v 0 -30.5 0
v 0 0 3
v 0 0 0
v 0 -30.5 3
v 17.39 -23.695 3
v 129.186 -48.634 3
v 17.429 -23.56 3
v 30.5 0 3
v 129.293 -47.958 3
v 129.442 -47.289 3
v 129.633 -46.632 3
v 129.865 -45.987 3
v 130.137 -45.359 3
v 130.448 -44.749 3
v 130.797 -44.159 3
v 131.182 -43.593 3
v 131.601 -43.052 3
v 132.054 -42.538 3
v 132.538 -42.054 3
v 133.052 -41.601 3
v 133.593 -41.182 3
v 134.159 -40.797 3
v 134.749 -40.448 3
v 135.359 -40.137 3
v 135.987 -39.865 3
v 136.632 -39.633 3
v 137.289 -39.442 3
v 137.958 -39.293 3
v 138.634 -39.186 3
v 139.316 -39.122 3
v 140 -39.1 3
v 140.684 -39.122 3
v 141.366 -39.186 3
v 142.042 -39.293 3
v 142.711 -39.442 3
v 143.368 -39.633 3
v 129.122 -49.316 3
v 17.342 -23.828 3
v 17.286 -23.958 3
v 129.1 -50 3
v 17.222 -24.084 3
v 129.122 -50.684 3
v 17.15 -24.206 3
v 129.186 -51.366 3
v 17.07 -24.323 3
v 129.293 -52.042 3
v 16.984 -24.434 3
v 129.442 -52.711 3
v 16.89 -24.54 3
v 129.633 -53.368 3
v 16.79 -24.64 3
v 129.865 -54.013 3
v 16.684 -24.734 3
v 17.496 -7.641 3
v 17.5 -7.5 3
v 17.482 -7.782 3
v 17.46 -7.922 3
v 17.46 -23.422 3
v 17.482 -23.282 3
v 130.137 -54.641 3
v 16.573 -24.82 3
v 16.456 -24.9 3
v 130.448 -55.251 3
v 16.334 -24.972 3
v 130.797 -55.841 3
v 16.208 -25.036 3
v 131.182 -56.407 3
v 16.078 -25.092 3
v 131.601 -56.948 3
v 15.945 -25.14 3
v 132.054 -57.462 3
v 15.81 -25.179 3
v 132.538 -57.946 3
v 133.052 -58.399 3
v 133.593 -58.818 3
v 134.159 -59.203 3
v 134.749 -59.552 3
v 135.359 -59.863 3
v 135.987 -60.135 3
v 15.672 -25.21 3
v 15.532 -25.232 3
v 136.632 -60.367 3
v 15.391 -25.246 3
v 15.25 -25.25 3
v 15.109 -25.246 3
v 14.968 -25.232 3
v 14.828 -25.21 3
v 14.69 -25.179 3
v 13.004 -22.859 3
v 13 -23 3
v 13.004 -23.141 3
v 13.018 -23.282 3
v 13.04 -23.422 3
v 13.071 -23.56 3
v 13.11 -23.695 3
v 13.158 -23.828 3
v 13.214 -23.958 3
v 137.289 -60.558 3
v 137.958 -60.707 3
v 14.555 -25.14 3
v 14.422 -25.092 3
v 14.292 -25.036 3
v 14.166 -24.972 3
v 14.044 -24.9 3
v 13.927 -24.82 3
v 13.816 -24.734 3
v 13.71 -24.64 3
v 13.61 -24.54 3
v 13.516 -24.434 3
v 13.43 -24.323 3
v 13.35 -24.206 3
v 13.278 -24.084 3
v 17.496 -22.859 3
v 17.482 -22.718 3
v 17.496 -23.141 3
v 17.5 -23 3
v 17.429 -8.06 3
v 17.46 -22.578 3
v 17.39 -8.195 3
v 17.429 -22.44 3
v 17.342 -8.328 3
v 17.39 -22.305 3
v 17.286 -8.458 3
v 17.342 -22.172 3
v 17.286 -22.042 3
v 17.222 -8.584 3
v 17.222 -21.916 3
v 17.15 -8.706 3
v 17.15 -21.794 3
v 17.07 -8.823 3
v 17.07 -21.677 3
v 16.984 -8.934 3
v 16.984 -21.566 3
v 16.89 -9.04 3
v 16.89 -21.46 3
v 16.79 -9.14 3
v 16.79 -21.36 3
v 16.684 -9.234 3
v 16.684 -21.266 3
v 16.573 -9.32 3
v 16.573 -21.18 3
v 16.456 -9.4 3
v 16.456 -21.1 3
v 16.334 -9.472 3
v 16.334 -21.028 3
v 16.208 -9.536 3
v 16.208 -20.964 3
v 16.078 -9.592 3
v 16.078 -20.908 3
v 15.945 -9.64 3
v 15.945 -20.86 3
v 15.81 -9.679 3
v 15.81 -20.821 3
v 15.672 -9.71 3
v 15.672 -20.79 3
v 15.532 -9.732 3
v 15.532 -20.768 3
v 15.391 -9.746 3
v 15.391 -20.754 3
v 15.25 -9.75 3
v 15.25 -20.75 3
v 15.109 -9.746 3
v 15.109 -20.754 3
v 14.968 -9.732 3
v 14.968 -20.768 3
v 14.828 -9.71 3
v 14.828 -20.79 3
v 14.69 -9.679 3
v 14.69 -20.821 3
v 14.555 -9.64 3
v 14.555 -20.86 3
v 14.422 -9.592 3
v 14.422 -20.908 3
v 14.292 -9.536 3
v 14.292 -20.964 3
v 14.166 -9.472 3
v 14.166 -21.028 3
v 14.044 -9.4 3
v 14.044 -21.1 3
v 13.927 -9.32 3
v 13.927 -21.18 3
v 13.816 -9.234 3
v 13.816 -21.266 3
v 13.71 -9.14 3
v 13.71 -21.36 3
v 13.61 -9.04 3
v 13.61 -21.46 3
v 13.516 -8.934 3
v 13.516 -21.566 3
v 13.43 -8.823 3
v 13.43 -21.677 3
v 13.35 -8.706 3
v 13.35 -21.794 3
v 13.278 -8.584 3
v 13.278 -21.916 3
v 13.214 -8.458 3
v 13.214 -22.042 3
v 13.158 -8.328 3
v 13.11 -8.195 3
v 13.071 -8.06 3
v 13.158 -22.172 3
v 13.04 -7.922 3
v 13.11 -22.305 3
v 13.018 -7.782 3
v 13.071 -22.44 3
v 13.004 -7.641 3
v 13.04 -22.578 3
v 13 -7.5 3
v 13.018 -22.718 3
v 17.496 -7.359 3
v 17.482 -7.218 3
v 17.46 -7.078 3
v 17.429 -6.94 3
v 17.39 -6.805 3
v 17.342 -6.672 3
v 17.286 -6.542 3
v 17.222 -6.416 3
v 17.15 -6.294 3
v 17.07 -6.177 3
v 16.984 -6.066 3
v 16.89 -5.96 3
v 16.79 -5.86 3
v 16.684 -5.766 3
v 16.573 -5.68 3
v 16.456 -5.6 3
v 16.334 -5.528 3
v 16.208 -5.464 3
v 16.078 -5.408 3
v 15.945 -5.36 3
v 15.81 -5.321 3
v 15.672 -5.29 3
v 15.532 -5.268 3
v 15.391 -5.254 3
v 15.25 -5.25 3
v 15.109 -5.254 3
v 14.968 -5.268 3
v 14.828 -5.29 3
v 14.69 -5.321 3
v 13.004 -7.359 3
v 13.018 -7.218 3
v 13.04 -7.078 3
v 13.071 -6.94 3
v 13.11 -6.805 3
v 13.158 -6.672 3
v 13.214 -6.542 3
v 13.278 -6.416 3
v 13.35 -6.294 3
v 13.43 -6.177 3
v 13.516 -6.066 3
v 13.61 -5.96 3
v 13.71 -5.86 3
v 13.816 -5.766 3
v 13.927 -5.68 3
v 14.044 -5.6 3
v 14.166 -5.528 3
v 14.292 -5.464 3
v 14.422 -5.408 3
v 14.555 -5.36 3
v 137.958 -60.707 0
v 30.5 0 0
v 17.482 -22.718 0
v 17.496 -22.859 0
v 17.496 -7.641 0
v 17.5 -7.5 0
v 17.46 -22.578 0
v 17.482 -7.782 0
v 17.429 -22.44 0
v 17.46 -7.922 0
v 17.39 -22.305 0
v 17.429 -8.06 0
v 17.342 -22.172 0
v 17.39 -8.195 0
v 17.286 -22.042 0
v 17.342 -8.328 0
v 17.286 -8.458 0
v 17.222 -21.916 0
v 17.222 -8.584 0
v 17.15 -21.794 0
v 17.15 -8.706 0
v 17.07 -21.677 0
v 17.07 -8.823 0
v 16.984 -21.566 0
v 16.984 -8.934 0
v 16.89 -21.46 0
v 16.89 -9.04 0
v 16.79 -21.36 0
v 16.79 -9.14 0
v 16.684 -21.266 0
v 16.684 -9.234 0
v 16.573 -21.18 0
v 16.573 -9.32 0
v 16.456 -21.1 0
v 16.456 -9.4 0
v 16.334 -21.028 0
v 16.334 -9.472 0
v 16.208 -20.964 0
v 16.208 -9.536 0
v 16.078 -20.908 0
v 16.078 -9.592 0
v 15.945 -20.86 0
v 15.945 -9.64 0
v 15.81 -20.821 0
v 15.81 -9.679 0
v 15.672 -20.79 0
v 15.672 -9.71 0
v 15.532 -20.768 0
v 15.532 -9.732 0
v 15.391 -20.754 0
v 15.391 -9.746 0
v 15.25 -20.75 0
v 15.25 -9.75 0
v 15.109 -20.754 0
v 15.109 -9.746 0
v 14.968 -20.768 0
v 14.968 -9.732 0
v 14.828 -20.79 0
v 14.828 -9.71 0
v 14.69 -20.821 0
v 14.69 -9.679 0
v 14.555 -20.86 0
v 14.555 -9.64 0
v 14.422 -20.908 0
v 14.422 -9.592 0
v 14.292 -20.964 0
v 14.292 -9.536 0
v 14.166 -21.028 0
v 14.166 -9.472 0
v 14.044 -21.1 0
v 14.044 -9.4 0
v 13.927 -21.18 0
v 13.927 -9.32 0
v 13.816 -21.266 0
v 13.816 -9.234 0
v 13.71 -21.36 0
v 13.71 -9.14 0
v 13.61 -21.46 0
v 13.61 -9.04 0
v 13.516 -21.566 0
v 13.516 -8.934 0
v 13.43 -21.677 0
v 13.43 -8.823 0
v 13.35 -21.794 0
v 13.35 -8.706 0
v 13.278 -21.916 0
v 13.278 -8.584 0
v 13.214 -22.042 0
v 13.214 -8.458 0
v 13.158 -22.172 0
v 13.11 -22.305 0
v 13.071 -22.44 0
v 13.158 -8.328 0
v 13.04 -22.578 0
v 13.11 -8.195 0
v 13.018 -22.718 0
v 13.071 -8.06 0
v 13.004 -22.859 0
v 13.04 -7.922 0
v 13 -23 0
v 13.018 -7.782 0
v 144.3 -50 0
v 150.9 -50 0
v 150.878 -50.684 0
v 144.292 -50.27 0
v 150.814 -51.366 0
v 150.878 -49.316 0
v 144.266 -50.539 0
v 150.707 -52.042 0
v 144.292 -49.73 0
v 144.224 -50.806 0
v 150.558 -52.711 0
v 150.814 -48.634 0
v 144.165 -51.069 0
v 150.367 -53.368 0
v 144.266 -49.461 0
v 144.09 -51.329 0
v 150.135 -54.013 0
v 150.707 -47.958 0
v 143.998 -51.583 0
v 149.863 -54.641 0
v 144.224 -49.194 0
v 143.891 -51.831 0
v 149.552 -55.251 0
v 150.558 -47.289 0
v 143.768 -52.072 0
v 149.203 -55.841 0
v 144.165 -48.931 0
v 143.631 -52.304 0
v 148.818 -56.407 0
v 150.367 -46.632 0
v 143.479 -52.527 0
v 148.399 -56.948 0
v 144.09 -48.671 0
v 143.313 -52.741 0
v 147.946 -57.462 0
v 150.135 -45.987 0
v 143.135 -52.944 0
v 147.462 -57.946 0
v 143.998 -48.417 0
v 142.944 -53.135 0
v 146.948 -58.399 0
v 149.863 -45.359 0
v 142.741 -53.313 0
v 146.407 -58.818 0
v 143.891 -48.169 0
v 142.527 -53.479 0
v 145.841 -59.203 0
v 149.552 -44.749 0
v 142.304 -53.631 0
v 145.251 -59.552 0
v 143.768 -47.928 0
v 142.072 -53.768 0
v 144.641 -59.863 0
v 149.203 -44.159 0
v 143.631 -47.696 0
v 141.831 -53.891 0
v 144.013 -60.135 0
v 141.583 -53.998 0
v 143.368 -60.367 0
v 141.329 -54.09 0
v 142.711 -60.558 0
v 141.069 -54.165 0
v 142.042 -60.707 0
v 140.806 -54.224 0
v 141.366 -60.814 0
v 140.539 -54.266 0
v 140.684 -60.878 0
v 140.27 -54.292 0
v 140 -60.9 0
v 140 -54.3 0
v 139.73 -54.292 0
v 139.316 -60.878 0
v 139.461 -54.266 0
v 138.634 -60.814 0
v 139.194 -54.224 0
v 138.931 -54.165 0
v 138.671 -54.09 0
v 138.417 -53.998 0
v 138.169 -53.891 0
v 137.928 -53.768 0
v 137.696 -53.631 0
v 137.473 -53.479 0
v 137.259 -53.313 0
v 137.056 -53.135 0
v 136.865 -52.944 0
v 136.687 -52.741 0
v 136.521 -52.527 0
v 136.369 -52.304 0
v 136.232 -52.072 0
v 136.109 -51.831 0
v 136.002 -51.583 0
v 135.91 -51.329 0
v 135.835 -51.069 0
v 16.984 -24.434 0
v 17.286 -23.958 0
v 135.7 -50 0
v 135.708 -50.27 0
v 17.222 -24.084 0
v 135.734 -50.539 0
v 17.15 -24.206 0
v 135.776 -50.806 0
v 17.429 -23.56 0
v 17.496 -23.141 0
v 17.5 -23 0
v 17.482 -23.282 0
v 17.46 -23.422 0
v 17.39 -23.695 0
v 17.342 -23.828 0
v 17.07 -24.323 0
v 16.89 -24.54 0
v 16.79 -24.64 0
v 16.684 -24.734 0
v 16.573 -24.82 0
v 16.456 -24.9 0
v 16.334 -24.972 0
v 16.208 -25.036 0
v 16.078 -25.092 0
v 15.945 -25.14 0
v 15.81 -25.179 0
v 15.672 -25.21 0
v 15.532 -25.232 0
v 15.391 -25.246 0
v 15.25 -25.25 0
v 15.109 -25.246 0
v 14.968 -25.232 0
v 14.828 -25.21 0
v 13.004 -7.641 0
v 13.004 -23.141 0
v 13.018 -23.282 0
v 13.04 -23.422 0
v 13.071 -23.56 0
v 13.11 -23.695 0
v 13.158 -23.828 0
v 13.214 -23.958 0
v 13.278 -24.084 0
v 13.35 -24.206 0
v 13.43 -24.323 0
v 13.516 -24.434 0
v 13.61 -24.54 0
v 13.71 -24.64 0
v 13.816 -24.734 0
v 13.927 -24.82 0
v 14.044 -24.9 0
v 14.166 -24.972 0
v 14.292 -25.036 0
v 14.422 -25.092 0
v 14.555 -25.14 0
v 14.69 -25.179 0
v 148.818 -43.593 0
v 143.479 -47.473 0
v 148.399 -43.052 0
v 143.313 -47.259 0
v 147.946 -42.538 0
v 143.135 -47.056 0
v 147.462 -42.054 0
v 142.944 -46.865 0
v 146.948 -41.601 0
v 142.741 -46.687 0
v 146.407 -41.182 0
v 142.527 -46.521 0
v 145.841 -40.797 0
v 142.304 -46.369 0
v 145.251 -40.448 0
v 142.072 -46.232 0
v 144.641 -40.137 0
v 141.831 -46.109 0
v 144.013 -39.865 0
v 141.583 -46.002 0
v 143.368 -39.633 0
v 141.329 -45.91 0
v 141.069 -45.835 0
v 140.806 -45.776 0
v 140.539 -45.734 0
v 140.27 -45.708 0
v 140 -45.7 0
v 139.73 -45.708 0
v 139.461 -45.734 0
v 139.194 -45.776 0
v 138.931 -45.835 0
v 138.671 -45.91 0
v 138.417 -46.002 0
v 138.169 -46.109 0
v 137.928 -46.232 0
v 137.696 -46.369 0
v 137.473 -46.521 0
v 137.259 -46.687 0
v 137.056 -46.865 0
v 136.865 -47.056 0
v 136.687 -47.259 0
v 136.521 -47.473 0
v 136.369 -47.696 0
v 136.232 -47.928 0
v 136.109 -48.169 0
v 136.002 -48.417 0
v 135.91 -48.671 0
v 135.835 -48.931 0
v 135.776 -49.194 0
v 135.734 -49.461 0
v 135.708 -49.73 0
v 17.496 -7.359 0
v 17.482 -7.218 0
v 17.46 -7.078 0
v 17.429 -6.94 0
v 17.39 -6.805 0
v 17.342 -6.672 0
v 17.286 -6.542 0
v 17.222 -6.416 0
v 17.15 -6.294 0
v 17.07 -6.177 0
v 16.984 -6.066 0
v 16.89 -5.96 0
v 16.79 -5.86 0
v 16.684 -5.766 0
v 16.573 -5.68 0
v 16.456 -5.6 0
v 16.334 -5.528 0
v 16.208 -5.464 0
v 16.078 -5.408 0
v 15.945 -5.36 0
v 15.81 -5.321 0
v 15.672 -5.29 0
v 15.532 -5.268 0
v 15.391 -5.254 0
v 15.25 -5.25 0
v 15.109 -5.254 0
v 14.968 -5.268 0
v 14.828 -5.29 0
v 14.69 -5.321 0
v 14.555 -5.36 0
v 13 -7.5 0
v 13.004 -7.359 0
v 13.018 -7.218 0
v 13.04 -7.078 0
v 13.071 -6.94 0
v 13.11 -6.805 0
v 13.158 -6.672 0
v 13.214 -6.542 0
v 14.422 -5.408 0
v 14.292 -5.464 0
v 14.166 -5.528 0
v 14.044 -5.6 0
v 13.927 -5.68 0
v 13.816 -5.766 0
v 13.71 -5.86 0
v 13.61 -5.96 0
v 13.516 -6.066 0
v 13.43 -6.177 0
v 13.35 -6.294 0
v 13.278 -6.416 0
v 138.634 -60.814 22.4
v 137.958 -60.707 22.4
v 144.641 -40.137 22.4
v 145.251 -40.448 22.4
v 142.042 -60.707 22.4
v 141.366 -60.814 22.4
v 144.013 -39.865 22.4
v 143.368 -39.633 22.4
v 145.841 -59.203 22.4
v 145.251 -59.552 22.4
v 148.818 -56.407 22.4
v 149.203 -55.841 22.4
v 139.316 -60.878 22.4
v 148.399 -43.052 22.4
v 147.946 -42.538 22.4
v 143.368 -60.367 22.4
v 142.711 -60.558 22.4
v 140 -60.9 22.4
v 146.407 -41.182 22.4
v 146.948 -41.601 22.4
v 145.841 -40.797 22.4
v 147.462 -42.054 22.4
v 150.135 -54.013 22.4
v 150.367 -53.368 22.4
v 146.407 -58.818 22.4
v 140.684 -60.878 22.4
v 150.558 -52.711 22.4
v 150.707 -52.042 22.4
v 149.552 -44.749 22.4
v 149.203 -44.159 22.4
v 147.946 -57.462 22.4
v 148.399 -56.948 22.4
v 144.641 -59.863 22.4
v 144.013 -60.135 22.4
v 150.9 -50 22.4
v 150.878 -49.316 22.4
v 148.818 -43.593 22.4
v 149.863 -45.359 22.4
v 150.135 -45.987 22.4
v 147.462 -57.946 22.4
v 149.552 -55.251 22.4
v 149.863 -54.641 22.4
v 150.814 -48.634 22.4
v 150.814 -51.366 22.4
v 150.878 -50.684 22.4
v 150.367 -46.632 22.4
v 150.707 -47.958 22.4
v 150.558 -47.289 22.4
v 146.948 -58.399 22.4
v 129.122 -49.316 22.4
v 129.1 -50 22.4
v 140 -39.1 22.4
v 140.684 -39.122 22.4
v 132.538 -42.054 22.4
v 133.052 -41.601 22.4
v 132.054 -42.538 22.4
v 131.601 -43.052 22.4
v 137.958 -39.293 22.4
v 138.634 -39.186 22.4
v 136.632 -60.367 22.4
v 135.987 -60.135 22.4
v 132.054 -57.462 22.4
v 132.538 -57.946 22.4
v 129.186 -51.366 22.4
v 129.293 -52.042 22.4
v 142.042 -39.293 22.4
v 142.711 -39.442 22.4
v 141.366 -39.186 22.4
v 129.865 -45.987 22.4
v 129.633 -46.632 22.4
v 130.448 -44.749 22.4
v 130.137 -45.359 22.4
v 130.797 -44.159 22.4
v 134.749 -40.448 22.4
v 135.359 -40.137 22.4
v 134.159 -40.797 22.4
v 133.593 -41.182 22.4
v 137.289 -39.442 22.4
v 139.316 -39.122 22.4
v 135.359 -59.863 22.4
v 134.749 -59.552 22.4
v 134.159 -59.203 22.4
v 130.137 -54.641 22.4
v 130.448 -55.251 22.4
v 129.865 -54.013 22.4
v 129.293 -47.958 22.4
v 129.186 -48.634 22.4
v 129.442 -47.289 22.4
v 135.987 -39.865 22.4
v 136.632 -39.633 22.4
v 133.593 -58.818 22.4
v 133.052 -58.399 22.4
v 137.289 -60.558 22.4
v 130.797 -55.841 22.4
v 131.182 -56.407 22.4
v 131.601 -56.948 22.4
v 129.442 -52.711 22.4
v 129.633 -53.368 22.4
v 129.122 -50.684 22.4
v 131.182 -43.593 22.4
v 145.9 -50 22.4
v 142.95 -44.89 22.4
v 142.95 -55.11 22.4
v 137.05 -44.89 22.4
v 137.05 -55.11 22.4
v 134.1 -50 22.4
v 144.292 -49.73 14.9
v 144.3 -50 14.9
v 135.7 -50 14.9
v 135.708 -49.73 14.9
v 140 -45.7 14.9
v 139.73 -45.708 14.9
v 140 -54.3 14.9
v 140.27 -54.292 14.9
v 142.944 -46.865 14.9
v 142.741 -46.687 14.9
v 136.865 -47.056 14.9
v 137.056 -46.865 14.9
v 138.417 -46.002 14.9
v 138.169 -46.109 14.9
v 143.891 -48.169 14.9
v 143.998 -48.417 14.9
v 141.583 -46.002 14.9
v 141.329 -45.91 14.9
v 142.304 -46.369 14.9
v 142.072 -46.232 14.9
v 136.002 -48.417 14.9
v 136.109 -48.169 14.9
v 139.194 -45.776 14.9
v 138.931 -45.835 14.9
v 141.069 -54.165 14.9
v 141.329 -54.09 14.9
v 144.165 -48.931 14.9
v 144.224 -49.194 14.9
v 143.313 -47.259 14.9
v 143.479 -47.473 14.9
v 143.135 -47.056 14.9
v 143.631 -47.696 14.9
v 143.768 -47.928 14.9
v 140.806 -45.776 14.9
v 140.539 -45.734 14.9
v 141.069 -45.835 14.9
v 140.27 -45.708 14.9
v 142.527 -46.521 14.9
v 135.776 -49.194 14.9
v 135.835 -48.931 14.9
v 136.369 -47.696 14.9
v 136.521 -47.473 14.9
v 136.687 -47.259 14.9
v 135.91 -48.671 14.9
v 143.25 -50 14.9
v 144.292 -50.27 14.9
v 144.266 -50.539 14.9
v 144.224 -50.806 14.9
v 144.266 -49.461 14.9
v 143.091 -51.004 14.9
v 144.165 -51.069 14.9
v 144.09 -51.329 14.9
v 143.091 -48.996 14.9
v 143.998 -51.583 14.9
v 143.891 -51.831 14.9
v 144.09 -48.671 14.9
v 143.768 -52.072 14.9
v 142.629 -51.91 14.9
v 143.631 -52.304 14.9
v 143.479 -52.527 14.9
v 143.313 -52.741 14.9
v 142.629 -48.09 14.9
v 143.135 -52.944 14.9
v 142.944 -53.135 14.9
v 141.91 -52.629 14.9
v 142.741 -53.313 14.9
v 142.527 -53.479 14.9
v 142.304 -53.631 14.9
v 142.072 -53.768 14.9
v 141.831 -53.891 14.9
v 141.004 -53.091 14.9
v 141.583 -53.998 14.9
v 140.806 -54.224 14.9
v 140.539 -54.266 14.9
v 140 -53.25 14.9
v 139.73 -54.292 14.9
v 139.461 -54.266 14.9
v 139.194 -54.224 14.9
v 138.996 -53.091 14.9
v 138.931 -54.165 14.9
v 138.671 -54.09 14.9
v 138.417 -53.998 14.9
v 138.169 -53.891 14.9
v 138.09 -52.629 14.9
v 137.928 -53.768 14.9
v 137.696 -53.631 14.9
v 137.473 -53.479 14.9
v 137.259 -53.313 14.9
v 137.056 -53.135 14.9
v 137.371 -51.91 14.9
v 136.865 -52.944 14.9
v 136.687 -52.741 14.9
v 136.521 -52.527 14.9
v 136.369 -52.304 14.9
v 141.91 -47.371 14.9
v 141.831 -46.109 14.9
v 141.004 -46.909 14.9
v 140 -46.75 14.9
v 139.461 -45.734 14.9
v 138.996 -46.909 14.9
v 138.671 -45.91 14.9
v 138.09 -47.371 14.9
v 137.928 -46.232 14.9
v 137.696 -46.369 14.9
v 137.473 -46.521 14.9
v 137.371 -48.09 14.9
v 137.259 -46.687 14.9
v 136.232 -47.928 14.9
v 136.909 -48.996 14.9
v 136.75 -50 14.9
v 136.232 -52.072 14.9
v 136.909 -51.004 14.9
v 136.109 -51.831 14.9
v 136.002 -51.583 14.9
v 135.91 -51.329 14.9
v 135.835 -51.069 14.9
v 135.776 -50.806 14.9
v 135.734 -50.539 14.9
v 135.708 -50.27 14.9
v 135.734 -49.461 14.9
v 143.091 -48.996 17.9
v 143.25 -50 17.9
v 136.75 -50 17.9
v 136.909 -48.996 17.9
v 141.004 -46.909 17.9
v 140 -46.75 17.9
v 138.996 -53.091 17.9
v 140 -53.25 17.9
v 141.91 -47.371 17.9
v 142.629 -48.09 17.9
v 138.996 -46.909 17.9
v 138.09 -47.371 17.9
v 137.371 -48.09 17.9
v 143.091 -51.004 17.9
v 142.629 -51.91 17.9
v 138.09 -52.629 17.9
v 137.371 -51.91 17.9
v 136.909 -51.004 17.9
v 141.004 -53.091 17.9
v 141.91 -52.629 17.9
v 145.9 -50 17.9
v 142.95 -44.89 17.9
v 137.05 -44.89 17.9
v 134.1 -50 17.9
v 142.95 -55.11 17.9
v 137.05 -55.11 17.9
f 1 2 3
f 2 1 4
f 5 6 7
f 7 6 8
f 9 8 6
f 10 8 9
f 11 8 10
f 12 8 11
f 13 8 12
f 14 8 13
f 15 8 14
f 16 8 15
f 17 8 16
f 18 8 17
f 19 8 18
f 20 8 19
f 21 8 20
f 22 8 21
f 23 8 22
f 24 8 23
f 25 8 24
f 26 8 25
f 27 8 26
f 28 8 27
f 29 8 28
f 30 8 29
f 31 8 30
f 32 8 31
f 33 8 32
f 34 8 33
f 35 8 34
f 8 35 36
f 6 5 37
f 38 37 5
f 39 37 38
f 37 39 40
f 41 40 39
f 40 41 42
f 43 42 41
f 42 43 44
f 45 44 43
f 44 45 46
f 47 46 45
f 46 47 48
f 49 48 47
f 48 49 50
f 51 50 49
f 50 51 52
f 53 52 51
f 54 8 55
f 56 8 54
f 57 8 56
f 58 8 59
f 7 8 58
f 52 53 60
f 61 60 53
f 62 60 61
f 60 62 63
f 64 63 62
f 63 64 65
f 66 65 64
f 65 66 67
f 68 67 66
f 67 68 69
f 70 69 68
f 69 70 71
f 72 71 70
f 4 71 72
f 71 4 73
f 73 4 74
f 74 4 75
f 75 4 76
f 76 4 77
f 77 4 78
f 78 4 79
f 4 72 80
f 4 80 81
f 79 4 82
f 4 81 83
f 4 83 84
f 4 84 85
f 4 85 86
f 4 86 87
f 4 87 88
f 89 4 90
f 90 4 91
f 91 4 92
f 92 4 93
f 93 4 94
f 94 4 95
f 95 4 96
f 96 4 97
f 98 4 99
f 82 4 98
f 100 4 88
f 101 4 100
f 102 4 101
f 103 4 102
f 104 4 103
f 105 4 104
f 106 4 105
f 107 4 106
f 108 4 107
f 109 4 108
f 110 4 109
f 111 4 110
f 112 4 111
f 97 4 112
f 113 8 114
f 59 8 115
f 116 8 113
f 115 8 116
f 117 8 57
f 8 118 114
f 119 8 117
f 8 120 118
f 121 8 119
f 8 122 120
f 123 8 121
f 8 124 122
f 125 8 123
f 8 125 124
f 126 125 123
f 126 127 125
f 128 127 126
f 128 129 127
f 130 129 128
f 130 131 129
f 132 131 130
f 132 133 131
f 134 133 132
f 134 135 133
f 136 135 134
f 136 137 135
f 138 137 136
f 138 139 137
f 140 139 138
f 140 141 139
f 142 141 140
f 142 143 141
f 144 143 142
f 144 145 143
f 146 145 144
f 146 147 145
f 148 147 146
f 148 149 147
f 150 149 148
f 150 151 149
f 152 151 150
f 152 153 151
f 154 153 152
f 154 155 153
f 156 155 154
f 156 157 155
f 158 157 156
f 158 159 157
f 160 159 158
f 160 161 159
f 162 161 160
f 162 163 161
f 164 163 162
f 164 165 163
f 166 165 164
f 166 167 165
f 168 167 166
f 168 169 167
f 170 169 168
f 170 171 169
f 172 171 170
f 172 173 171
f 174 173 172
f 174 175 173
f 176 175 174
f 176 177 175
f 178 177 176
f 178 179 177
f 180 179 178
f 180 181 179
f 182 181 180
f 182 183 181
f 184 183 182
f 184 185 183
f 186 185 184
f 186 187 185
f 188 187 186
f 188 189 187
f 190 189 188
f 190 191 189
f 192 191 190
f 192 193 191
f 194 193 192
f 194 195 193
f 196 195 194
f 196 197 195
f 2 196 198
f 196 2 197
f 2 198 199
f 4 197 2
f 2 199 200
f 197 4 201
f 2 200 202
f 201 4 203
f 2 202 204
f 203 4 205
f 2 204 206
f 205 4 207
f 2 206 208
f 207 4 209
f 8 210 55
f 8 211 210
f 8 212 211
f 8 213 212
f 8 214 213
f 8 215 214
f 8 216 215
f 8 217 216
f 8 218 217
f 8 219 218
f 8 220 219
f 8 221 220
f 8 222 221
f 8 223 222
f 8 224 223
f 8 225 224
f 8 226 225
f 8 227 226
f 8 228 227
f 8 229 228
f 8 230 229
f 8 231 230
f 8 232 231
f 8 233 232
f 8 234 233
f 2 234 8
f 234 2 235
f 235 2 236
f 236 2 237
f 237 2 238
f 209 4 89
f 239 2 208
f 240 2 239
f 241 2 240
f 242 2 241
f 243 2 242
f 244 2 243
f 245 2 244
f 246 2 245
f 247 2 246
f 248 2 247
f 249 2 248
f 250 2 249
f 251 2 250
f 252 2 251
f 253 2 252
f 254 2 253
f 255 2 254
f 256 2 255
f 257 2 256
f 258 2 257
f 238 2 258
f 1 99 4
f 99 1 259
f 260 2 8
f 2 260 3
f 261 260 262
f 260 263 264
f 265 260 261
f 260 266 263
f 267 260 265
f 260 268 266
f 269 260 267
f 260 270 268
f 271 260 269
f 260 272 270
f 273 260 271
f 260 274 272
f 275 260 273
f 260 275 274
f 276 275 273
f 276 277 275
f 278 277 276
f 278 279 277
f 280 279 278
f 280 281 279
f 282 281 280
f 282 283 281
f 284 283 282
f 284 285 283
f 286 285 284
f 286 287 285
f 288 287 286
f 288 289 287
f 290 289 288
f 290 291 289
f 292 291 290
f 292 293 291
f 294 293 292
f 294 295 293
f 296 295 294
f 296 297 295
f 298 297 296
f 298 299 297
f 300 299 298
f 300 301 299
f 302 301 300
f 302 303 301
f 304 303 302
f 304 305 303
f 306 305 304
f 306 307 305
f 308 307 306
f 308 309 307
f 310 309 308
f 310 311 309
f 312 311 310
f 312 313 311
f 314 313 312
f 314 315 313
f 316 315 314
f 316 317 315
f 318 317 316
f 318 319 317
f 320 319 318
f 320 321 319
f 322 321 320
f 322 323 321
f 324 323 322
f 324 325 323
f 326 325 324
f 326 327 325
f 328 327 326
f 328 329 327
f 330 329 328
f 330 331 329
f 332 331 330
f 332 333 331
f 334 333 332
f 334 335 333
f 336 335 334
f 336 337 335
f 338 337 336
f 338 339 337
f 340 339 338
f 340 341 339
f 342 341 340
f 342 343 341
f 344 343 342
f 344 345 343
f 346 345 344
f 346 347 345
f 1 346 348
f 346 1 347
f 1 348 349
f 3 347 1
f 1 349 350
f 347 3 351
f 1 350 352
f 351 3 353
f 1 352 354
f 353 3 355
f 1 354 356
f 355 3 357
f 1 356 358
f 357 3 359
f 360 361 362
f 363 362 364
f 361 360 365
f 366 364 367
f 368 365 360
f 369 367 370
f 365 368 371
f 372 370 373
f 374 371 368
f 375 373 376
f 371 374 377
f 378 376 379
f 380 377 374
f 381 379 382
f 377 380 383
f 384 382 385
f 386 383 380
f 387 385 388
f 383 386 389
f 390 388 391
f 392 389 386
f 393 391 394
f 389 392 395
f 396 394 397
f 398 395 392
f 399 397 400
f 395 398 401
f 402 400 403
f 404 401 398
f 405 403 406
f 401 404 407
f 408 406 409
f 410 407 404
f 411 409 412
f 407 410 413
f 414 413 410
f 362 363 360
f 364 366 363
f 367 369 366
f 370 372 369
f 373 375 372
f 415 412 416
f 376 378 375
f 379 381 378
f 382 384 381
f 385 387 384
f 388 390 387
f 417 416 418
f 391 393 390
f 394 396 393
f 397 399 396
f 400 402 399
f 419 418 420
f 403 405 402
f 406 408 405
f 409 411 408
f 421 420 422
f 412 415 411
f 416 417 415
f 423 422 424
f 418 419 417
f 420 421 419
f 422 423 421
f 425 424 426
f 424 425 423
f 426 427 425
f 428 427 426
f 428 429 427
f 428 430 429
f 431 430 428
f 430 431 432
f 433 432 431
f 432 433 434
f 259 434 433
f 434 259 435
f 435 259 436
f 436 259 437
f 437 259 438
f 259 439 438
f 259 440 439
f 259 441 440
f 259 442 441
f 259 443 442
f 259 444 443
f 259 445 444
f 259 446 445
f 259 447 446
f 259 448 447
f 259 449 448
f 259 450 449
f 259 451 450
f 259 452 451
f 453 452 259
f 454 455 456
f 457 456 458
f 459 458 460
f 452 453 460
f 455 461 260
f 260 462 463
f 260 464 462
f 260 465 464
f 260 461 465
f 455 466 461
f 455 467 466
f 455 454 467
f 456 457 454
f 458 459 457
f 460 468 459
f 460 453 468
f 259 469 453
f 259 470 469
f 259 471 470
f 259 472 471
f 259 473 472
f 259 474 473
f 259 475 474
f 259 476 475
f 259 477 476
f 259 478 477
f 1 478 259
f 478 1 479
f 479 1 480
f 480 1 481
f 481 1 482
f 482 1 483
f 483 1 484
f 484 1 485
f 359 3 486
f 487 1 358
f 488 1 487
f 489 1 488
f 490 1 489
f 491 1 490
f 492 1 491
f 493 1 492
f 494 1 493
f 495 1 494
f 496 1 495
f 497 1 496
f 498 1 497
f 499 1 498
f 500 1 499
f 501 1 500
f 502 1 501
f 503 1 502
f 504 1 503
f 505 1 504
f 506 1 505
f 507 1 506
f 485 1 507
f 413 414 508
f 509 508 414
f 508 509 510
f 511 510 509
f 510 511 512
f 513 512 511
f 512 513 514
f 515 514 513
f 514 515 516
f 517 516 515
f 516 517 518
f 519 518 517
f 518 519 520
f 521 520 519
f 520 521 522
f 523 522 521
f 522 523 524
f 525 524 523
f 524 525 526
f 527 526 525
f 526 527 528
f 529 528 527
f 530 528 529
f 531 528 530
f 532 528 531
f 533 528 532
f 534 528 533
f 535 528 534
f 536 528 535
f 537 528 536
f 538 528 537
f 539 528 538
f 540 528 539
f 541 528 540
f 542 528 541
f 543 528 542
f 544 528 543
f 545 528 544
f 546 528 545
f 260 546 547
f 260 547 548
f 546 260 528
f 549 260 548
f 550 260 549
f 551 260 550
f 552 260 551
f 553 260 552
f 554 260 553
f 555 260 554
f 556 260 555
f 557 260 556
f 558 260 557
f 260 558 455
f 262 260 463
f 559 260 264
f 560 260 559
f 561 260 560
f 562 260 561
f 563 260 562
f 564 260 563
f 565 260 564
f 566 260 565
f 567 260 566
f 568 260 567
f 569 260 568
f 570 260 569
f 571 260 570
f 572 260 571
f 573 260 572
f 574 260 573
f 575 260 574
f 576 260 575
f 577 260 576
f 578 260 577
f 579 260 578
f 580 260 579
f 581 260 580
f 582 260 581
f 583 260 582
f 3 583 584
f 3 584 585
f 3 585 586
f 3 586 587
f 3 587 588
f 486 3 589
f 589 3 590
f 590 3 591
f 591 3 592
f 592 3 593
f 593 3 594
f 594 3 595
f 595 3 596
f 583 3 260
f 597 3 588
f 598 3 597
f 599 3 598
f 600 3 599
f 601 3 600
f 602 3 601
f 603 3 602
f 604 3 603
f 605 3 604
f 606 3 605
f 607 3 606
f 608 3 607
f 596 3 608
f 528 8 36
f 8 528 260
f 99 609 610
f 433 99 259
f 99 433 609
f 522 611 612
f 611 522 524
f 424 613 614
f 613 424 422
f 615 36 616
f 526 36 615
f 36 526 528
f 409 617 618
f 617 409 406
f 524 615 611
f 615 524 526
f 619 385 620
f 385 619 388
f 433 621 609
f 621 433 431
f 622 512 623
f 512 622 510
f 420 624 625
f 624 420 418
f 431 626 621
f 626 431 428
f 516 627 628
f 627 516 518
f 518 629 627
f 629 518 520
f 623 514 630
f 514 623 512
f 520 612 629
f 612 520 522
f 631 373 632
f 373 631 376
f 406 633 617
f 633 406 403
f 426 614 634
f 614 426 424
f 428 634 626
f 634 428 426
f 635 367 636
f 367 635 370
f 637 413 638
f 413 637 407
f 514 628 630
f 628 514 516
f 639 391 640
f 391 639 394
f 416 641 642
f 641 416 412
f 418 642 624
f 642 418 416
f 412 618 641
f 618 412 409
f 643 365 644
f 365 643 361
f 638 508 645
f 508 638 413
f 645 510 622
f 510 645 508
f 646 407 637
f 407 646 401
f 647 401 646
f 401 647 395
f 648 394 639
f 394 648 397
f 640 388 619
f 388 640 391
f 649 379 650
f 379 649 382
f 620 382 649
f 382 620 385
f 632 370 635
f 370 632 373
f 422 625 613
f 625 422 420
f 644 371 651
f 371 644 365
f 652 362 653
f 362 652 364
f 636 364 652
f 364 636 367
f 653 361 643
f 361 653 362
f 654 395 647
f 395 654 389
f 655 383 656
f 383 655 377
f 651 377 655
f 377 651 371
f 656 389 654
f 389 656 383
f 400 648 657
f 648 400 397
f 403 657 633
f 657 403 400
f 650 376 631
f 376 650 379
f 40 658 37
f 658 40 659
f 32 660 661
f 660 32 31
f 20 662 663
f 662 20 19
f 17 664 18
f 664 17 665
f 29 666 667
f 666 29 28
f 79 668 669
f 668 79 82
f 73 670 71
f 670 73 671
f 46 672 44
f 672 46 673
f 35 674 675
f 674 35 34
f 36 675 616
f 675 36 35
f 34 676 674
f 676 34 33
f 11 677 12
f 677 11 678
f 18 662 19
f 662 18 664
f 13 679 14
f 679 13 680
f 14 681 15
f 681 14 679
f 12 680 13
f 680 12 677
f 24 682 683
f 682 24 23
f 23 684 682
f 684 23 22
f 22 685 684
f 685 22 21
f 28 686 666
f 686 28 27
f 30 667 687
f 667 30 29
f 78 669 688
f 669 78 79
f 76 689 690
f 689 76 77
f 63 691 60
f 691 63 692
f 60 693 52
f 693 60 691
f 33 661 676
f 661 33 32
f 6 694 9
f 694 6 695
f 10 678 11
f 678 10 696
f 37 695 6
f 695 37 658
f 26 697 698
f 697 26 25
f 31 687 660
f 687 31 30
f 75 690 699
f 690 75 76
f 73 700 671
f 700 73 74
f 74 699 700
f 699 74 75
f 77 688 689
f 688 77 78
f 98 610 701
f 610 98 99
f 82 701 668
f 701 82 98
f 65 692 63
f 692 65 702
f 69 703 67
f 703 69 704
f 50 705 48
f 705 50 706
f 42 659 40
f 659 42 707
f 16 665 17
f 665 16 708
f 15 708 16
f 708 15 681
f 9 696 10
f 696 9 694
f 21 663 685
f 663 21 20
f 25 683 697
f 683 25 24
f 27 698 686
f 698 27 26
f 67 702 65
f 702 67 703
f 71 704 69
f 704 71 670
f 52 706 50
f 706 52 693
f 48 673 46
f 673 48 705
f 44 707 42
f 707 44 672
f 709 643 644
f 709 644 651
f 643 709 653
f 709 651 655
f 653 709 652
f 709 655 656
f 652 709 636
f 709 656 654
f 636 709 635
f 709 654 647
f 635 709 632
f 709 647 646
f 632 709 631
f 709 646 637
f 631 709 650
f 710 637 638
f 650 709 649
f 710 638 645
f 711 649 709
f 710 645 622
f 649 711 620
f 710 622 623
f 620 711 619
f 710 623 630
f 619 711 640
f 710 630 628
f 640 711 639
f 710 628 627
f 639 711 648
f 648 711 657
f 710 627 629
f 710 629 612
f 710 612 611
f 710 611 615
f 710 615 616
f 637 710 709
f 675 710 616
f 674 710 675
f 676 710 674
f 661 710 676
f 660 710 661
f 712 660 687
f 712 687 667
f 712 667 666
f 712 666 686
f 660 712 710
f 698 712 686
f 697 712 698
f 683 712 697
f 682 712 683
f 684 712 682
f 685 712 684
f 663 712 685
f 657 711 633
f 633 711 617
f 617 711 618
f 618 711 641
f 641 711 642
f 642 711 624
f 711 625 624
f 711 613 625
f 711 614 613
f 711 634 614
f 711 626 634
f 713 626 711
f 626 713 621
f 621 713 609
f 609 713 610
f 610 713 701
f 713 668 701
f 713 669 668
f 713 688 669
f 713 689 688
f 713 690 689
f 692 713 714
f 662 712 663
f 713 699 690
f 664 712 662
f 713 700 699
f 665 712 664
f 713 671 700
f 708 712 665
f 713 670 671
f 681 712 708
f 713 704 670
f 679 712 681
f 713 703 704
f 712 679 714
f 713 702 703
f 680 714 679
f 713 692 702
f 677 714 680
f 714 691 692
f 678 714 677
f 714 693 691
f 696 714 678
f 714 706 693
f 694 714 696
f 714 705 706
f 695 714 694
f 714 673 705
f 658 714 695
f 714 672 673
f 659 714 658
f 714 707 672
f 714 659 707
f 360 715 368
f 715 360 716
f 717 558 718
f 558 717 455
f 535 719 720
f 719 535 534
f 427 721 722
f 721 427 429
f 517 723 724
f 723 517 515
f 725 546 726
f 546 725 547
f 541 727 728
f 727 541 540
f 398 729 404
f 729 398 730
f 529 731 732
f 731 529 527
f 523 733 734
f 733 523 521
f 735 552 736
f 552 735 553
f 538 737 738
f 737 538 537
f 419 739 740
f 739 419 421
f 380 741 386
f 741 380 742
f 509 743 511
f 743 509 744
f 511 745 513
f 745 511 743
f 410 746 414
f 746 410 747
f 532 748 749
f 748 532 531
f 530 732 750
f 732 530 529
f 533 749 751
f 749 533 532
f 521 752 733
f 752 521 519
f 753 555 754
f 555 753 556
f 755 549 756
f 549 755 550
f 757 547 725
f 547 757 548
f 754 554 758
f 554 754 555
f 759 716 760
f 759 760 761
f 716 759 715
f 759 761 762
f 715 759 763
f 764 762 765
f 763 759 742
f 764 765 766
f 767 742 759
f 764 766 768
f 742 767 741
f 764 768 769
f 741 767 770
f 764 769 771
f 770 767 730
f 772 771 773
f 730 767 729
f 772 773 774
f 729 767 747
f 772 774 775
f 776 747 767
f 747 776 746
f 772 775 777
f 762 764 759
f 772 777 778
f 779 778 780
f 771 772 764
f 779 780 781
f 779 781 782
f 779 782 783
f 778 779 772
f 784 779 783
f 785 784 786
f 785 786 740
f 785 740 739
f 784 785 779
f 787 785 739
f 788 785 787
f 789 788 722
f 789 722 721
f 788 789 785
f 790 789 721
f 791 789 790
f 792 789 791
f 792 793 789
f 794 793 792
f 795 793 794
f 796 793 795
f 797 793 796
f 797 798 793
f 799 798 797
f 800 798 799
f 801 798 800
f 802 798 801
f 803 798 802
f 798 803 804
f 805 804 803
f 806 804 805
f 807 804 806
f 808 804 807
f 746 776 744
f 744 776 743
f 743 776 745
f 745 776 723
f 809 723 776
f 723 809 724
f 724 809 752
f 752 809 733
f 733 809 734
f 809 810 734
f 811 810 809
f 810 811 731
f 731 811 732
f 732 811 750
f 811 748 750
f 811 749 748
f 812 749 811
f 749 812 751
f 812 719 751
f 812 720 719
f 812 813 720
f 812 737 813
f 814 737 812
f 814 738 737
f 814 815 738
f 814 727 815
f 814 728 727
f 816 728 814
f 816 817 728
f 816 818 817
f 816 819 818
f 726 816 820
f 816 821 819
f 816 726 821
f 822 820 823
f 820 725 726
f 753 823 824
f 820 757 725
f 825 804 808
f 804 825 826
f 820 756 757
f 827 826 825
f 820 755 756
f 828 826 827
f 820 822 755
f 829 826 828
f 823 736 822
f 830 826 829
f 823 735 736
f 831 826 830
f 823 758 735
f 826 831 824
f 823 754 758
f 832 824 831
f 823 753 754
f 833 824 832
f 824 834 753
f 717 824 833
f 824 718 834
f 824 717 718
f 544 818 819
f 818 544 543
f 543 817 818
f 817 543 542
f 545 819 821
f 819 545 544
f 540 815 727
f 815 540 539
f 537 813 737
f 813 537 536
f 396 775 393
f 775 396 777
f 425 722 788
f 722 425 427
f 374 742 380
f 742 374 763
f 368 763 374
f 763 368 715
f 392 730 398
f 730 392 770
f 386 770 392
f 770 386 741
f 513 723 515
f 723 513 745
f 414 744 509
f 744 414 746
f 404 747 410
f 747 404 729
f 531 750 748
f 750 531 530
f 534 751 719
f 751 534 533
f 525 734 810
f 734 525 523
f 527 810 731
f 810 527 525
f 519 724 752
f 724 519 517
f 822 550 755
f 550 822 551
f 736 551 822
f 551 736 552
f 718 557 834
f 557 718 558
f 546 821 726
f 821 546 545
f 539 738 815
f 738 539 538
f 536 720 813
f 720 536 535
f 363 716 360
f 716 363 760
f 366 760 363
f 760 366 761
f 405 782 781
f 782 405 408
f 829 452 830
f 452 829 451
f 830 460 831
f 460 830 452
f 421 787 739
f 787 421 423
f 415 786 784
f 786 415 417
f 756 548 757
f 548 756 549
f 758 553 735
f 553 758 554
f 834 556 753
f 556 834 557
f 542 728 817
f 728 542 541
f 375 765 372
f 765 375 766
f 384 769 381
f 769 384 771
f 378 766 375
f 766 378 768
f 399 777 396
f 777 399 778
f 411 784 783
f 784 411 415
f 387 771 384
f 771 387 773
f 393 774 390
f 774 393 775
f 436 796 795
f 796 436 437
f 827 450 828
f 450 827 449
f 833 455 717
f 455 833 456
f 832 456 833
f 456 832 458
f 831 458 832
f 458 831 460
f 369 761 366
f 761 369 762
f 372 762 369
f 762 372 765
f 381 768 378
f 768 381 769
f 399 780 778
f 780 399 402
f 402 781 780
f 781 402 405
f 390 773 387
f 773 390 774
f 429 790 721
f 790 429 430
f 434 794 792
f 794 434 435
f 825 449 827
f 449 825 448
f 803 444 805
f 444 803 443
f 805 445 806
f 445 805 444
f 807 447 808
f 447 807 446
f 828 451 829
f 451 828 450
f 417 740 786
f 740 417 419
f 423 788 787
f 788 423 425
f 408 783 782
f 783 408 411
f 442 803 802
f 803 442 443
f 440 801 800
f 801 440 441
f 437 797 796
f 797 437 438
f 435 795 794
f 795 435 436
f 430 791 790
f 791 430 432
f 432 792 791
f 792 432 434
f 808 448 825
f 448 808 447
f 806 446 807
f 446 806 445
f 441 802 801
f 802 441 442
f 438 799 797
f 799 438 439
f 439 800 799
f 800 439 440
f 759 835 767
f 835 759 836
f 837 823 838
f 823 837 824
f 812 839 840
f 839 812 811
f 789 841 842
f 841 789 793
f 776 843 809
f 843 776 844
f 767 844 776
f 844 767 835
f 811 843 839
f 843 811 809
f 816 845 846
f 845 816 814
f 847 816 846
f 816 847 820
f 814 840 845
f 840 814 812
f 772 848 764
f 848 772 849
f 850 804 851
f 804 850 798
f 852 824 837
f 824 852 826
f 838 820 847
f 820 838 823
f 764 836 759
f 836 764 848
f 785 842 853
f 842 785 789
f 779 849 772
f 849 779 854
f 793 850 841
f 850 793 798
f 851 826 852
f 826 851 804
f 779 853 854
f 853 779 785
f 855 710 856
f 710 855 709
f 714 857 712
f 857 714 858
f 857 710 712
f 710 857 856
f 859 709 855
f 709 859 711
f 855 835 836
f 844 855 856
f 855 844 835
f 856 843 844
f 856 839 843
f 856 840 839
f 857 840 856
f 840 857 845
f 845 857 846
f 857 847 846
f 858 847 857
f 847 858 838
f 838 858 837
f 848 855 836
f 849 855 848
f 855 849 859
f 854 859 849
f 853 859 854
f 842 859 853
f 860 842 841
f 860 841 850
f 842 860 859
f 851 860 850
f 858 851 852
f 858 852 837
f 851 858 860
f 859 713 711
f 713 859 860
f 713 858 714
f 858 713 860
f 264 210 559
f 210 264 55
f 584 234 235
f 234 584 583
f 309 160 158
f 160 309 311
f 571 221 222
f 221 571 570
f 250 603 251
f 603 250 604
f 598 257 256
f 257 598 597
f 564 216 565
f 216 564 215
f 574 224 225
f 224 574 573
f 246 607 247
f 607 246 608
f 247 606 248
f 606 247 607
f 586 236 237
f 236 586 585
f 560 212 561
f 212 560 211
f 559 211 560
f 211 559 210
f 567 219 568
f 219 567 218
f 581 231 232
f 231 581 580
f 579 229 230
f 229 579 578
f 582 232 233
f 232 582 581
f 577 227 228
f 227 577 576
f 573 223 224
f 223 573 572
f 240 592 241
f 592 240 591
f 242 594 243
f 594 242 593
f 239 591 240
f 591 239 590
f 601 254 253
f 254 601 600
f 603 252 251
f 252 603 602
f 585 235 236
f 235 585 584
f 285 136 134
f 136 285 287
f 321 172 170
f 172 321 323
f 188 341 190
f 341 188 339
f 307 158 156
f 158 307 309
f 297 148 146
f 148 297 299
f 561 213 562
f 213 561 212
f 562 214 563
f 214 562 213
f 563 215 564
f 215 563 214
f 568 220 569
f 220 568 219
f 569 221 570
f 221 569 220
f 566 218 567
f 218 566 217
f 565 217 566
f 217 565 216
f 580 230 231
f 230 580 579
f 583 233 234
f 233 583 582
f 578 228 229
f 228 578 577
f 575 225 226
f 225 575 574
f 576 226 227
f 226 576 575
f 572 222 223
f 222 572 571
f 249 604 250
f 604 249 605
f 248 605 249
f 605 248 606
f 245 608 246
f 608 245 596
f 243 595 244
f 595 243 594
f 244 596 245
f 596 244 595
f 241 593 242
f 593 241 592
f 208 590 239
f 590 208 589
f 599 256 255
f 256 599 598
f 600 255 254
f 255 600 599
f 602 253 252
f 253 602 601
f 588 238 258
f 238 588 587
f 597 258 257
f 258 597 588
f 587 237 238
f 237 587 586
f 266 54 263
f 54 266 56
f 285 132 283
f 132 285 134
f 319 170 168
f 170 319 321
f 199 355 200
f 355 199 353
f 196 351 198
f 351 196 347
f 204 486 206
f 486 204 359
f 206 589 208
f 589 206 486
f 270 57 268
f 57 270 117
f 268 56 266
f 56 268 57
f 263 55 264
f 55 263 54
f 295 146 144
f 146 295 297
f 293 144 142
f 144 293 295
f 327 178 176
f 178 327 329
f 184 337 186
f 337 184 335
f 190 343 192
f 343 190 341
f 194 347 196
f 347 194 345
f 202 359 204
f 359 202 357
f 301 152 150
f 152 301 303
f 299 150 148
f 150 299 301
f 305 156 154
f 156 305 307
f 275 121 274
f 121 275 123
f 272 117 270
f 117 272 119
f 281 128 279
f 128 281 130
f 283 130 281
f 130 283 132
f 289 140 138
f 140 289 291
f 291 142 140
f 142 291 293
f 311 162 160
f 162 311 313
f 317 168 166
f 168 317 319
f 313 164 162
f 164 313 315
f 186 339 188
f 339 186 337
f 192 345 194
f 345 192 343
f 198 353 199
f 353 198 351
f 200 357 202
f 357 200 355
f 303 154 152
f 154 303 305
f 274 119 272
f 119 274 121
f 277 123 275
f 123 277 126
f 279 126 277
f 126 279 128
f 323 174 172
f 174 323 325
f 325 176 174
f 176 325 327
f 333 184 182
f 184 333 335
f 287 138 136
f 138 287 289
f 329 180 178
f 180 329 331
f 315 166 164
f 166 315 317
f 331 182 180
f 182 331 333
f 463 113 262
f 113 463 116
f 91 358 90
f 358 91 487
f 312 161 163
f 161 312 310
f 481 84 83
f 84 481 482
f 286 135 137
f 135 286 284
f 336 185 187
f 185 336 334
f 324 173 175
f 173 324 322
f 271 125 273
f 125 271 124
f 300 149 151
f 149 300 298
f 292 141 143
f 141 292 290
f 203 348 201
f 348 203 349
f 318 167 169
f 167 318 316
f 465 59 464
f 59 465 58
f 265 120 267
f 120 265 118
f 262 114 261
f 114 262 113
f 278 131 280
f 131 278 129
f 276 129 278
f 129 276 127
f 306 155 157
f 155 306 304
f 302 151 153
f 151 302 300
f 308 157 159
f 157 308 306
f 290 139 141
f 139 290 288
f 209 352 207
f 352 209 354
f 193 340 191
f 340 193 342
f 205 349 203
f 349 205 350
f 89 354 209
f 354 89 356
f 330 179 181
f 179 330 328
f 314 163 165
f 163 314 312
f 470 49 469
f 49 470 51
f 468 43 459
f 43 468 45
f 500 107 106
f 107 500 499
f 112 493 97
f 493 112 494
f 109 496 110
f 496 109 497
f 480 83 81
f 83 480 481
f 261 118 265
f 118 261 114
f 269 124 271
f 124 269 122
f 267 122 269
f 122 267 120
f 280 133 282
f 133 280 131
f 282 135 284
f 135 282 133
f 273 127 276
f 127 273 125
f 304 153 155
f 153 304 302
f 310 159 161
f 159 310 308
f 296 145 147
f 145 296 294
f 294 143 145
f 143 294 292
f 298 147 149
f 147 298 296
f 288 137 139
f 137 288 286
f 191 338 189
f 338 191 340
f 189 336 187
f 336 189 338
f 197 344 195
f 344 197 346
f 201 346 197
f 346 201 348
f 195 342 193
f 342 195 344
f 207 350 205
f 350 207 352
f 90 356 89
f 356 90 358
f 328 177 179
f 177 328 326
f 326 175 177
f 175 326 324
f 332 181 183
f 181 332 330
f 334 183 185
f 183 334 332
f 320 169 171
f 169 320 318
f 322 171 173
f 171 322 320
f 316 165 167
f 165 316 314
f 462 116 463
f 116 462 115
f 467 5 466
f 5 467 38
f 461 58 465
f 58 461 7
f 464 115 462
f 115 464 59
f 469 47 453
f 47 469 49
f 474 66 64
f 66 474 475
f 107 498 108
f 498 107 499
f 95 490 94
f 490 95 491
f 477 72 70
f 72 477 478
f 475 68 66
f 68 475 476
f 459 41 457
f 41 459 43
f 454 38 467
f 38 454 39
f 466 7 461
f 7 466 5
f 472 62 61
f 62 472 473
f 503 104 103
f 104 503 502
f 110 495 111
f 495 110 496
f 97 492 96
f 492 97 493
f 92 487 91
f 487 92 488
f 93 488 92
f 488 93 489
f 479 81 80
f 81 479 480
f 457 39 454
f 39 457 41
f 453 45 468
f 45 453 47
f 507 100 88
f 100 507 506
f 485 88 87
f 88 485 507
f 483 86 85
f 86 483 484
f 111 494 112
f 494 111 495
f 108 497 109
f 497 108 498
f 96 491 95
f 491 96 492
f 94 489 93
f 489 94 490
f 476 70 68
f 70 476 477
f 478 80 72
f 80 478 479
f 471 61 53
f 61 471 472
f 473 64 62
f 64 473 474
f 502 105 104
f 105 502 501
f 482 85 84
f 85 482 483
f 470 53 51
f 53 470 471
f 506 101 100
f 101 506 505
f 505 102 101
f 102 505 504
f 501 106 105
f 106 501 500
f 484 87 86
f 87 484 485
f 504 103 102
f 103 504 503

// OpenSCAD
// file: ../src/888_1003.scad
include <../parameters.scad>

module 888_1003() {
    difference() {
        cylinder(d=8+0.2+4, h=20-608_bearing_thickness*2, $fn=50);
        
        translate([0, 0, -ALU_profile_holder_wall_thickness])
        cylinder(d=8+0.2, h=ALU_profile_width+ALU_profile_holder_wall_thickness*4, $fn=50);
    }
}

888_1003();
// file: ../src/888_1002.scad
include <../parameters.scad>
use <888_1003.scad>

module 888_1002(print_plate=false) {
    difference() {
        cylinder(d=50, h=20, $fn=100);
        
        translate([0, 0, -5])
        cylinder(h=ALU_profile_width+ALU_profile_holder_wall_thickness*2+10, d=M6_screw_diameter+10, $fn=100);
        
        translate([0, 0, -.01])
        cylinder(h=608_bearing_thickness, d=608_bearing_outer_diameter, $fn=100);
        
        translate([0, 0, 20-608_bearing_thickness+.01])
        cylinder(h=608_bearing_thickness, d=608_bearing_outer_diameter, $fn=100);
        
        translate([0, 0, 10])
        rotate_extrude(convexity = 1, $fn=100)
        translate([25, 0, 0])
        circle(d=10, $fn = 100);
    }
    
    if(!print_plate) {
        translate([0, 0, 608_bearing_thickness])
        888_1003();
    }
}

888_1002();
// file: ../src/888_1001.scad
include <../parameters.scad>
use <888_1002.scad>

module 888_1001() {
    difference() {
        union() {
            hull() {
                cube([ALU_profile_width, 3, ALU_profile_width]);
                
                translate([calibration_arm_x_offset, 0, calibration_arm_y_offset])
                rotate([-90, 0, 0])
                cylinder(d=M6_nut_diameter+5*2, h=3, $fn=100);
            }
            
            translate([calibration_arm_x_offset, 0, calibration_arm_y_offset])
            rotate([-90, 0, 0])
            cylinder(d=M6_nut_diameter+5*2, h=14.5+M6_nut_height+3, $fn=100);
        }
    
        // pulley hole
        translate([calibration_arm_x_offset, -.1, calibration_arm_y_offset])
        rotate([-90, 0, 0])
        union() {
            cylinder(d=M8_screw_diameter, h=15, $fn=100);
            cylinder(d=M6_screw_diameter, h=30, $fn=20);
            
            translate([0, 0, 15+3])
            cylinder(d=M6_nut_diameter, h=70, $fn=6);
        }
        
        
        // ALU profile screws
        translate([ALU_profile_width/2, -1, 7.5])
        rotate([-90, 0, 0])
        cylinder(d=M4_screw_diameter, h=3+2, $fn=100);
        
        translate([ALU_profile_width/2, -1, ALU_profile_width-7.5])
        rotate([-90, 0, 0])
        cylinder(d=M4_screw_diameter, h=3+2, $fn=100);
    }
}

888_1001();

translate([calibration_arm_x_offset, -.5, calibration_arm_y_offset])
rotate([90, 0, 0])
#888_1002();

translate([calibration_arm_x_offset, -20.5, calibration_arm_y_offset])
rotate([-90, 0, 0])
#cylinder(d=M8_screw_diameter, h=35, $fn=100);
// file: ../parameters.scad
maximum_printable_size = 150;

layer_thickness = 0.3;
global_clearance = 0.5;


//Screw diameter and nut for M10 [mm]
M10_screw_diameter = 10.4;
M10_head_height = 10;
M10_head_diameter = 16+0.5;
M10_nut_height = 10.5;
M10_nut_diameter = 25.5;
M10_nut_pocket = 22.3;

//Screw diameter for M8 [mm]
M8_screw_diameter = 8.6;
M8_head_height = 8;
M8_head_diameter = 13.5;
M8_nut_height = 7.5;
M8_square_nut_thin_height = 4.5;
M8_nut_diameter = 14.4 + 0.5;
M8_nut_pocket = 13 + 0.5;
M8_washer_diameter = 16;
M8_washer_thickness = 1.5;


//Screw diameter and nut for M6 [mm]
M6_screw_diameter=6.5;
M6_head_diameter = 10+0.5;
M6_head_height = 6;
M6_nut_height = 4.9;
M6_nut_diameter = 11.8;
M6_nut_pocket = 10.4;
M6_square_nut_height = 3;
M6_square_nut_diameter = 10;
M6_washer_thickness = 1.6;

//Screw diameter and nut for M5 [mm]
M5_screw_diameter=5.5;
M5_head_height = 5;
M5_head_diameter = 13+0.5;
M5_nut_height = 4.5;
M5_nut_diameter = 9.4;
M5_nut_pocket = 8.4;

//Screw diameter and nut for M4 [mm]
M4_screw_diameter=4.5;
M4_screw_head_height = 4;
M4_nut_height = 3.2;
M4_nut_diameter = 8.4;
M4_nut_pocket = 7.5;

//Screw diameter and nut for M3 [mm]
M3_screw_diameter = 3.2;
M3_nut_height = 2.7;
M3_nut_diameter = 6.6;
M3_nut_pocket = 5.6;
M3_screw_head_height = 3;

//Screw diameter and nut for M2,5 [mm]
M2_5_screw_diameter = 2.7;
M2_5_nut_height = 2.3;
M2_5_nut_diameter = 6;
M2_5_nut_pocket = 5.5;

// kulove lozisko

bearing_efsm_08_h = 33+1;
bearing_efsm_08_m = 22;
bearing_efsm_08_db = 18;
bearing_efsm_08_ag = 10.5;
bearing_efsm_08_n = M4_screw_diameter;
bearing_efsm_08_a1 = 5.5;
bearing_efsm_08_d = 8.25;
bearing_efsm_08_B = 8; // ball height

bearing_efsm_10_h = 38+1;
bearing_efsm_10_m = 26;
bearing_efsm_10_db = 21.9;
bearing_efsm_10_ag = 12+0.2;
bearing_efsm_10_n = M5_screw_diameter;
bearing_efsm_10_a1 = 6.5;
bearing_efsm_10_d = 10.25;


bearing_efsm_12_width = 40+1;
bearing_efsm_12_h = bearing_efsm_12_width;
bearing_efsm_12_boltd = 28/2; // polovina vzdalenosti mezi srouby
bearing_efsm_12_m = bearing_efsm_12_boltd*2;
bearing_efsm_12_db = 25;
bearing_efsm_12_ag = 13;
bearing_efsm_12_a1 = 7;
bearing_efsm_12_n = M5_screw_diameter;
bearing_efsm_12_d = 12.15;
bearing_efsm_12_B = 10; // ball height
bearing_efsm_space = 1;

bearing_efsm_17_width = 54+1;
bearing_efsm_17_h = bearing_efsm_17_width;
bearing_efsm_17_boltd = 38/2; // polovina vzdalenosti mezi srouby
bearing_efsm_17_m = bearing_efsm_17_boltd*2;
bearing_efsm_17_db = 35;
bearing_efsm_17_ag = 18;
bearing_efsm_17_n = M6_screw_diameter;
bearing_efsm_17_a1 = 10;
bearing_efsm_17_B = 17; // ball height

//limcove lozisko
bearing_EFOM_10_L=26; //celkova sirka zakladny
bearing_EFOM_10_d1=10.3;//diametr otvoru real=10 mm
bearing_EFOM_10_dB=22;//diametr vystupku pro ulozeni lozika
bearing_EFOM_10_H=52;//celková delka zakladny
bearing_EFOM_10_J=36;// hole pitch
bearing_EFOM_10_A1=6.5;//vyska pouzdra
bearing_EFOM_10_Ag=12;//celkova vyska
bearing_EFOM_10_N1=5;//sirka otvoru pro sroub
bearing_EFOM_10_N2=8;//delka otvoru pro sroub
bearing_EFOM_10_m=36;//roztec der pro sroub
bearing_EFOM_10_h=9;//vyska lozika


608_bearing_outer_diameter = 22.3;
608_bearing_inner_diameter = 16;
608_bearing_thickness = 7.1;


// 20 KG servo parameters

servo_20kg_axis_offset = 9.375; // jak je osa mimo stredu
servo_20kg_body_x = 42;
servo_20kg_body_y = 21;
servo_20kg_body_z = 40;
servo_20kg_thread_x = 49/2;
servo_20kg_thread_y = 10/2;
servo_20kg_body_below = 10; // jak hluboko je tělo serva pod drzaky na srouby
servo_20kg_below = 25.8; // jak hluboko je páka serva pod drzaky na srouby

servo_20kg_bolt_d = 2.5+0.3;
servo_20kg_nut_d = 5+0.3;


//strain gauge
strain_gauge_width = 12.7;
strain_gauge_length = 75.1;
strain_gauge_screw_distance = 10;

//ALU profile
ALU_profile_width = 30.5;
ALU_profile_holder_wall_thickness = 3;
ALU_profile_groove_width = 8;

//pillow block bearing
//https://www.igus.eu/product/372
//Part no. KSTM-08
KSTM08_screws_distance = 33;         //m
KSTM08_screws_holes_diameter = 4.5;  //d2
KSTM08_flange_thickness = 6;         //h3
KSTM08_case_width = 9;               //C1
KSTM08_case_length = 47;             //a
KSTM08_ball_width = 12;              //B
KSTM08_ball_hole_diameter = 7.85;    //d1


//ložiska pro malý rotor
bearing_outer_diameter = 10.2;    // Rozměr B1 v nákresu s přídavkem na toleranci otvoru
bearing_thickness = 4;        // Rozměr B2 v nákresu
//bearing_shaft_length = 19.5;    // Rozměr B3 v nákresu, Originalni hodnota 19.5
bearing_shaft_length = 20;    // Rozměr B3 v nákresu


//parametry víčka s telemetrickou anténou
S01_sila_materialu=1.2;
S01_vyska_horni_zavit=10;
S01_hloubka_zavitu=4;
S01_prumer_vnitrni=50;
LO_spodni_prumer=17.2;
LO_vyska_bez_krytu=15;
S01_tolerance_zavit=1.5;
R01_vyska_prekryti_statoru=10;

g3_0_cone1 = 70;
g3_0_srcew_dist = 55;



// scale parameters
base_length = 500;
mid_base_width = 500;
mid_base_height = 200;
mid_base_length = 500;
mid_base_x_offset = 50;
base_mid_base_hinge_offset = 50;
tower_height = 185;
tower_angle = atan((mid_base_width/2-ALU_profile_width-10)/tower_height);
tower_arm_length = tower_height/cos(tower_angle);
tower_drag_z_offset = 22;

// calibration device parameters
calibration_arm_x_offset = 140;
calibration_arm_y_offset = 50;
// main file
include <../parameters.scad>
use <../src/888_1001.scad>

rotate([90, 0, 0])
888_1001();
